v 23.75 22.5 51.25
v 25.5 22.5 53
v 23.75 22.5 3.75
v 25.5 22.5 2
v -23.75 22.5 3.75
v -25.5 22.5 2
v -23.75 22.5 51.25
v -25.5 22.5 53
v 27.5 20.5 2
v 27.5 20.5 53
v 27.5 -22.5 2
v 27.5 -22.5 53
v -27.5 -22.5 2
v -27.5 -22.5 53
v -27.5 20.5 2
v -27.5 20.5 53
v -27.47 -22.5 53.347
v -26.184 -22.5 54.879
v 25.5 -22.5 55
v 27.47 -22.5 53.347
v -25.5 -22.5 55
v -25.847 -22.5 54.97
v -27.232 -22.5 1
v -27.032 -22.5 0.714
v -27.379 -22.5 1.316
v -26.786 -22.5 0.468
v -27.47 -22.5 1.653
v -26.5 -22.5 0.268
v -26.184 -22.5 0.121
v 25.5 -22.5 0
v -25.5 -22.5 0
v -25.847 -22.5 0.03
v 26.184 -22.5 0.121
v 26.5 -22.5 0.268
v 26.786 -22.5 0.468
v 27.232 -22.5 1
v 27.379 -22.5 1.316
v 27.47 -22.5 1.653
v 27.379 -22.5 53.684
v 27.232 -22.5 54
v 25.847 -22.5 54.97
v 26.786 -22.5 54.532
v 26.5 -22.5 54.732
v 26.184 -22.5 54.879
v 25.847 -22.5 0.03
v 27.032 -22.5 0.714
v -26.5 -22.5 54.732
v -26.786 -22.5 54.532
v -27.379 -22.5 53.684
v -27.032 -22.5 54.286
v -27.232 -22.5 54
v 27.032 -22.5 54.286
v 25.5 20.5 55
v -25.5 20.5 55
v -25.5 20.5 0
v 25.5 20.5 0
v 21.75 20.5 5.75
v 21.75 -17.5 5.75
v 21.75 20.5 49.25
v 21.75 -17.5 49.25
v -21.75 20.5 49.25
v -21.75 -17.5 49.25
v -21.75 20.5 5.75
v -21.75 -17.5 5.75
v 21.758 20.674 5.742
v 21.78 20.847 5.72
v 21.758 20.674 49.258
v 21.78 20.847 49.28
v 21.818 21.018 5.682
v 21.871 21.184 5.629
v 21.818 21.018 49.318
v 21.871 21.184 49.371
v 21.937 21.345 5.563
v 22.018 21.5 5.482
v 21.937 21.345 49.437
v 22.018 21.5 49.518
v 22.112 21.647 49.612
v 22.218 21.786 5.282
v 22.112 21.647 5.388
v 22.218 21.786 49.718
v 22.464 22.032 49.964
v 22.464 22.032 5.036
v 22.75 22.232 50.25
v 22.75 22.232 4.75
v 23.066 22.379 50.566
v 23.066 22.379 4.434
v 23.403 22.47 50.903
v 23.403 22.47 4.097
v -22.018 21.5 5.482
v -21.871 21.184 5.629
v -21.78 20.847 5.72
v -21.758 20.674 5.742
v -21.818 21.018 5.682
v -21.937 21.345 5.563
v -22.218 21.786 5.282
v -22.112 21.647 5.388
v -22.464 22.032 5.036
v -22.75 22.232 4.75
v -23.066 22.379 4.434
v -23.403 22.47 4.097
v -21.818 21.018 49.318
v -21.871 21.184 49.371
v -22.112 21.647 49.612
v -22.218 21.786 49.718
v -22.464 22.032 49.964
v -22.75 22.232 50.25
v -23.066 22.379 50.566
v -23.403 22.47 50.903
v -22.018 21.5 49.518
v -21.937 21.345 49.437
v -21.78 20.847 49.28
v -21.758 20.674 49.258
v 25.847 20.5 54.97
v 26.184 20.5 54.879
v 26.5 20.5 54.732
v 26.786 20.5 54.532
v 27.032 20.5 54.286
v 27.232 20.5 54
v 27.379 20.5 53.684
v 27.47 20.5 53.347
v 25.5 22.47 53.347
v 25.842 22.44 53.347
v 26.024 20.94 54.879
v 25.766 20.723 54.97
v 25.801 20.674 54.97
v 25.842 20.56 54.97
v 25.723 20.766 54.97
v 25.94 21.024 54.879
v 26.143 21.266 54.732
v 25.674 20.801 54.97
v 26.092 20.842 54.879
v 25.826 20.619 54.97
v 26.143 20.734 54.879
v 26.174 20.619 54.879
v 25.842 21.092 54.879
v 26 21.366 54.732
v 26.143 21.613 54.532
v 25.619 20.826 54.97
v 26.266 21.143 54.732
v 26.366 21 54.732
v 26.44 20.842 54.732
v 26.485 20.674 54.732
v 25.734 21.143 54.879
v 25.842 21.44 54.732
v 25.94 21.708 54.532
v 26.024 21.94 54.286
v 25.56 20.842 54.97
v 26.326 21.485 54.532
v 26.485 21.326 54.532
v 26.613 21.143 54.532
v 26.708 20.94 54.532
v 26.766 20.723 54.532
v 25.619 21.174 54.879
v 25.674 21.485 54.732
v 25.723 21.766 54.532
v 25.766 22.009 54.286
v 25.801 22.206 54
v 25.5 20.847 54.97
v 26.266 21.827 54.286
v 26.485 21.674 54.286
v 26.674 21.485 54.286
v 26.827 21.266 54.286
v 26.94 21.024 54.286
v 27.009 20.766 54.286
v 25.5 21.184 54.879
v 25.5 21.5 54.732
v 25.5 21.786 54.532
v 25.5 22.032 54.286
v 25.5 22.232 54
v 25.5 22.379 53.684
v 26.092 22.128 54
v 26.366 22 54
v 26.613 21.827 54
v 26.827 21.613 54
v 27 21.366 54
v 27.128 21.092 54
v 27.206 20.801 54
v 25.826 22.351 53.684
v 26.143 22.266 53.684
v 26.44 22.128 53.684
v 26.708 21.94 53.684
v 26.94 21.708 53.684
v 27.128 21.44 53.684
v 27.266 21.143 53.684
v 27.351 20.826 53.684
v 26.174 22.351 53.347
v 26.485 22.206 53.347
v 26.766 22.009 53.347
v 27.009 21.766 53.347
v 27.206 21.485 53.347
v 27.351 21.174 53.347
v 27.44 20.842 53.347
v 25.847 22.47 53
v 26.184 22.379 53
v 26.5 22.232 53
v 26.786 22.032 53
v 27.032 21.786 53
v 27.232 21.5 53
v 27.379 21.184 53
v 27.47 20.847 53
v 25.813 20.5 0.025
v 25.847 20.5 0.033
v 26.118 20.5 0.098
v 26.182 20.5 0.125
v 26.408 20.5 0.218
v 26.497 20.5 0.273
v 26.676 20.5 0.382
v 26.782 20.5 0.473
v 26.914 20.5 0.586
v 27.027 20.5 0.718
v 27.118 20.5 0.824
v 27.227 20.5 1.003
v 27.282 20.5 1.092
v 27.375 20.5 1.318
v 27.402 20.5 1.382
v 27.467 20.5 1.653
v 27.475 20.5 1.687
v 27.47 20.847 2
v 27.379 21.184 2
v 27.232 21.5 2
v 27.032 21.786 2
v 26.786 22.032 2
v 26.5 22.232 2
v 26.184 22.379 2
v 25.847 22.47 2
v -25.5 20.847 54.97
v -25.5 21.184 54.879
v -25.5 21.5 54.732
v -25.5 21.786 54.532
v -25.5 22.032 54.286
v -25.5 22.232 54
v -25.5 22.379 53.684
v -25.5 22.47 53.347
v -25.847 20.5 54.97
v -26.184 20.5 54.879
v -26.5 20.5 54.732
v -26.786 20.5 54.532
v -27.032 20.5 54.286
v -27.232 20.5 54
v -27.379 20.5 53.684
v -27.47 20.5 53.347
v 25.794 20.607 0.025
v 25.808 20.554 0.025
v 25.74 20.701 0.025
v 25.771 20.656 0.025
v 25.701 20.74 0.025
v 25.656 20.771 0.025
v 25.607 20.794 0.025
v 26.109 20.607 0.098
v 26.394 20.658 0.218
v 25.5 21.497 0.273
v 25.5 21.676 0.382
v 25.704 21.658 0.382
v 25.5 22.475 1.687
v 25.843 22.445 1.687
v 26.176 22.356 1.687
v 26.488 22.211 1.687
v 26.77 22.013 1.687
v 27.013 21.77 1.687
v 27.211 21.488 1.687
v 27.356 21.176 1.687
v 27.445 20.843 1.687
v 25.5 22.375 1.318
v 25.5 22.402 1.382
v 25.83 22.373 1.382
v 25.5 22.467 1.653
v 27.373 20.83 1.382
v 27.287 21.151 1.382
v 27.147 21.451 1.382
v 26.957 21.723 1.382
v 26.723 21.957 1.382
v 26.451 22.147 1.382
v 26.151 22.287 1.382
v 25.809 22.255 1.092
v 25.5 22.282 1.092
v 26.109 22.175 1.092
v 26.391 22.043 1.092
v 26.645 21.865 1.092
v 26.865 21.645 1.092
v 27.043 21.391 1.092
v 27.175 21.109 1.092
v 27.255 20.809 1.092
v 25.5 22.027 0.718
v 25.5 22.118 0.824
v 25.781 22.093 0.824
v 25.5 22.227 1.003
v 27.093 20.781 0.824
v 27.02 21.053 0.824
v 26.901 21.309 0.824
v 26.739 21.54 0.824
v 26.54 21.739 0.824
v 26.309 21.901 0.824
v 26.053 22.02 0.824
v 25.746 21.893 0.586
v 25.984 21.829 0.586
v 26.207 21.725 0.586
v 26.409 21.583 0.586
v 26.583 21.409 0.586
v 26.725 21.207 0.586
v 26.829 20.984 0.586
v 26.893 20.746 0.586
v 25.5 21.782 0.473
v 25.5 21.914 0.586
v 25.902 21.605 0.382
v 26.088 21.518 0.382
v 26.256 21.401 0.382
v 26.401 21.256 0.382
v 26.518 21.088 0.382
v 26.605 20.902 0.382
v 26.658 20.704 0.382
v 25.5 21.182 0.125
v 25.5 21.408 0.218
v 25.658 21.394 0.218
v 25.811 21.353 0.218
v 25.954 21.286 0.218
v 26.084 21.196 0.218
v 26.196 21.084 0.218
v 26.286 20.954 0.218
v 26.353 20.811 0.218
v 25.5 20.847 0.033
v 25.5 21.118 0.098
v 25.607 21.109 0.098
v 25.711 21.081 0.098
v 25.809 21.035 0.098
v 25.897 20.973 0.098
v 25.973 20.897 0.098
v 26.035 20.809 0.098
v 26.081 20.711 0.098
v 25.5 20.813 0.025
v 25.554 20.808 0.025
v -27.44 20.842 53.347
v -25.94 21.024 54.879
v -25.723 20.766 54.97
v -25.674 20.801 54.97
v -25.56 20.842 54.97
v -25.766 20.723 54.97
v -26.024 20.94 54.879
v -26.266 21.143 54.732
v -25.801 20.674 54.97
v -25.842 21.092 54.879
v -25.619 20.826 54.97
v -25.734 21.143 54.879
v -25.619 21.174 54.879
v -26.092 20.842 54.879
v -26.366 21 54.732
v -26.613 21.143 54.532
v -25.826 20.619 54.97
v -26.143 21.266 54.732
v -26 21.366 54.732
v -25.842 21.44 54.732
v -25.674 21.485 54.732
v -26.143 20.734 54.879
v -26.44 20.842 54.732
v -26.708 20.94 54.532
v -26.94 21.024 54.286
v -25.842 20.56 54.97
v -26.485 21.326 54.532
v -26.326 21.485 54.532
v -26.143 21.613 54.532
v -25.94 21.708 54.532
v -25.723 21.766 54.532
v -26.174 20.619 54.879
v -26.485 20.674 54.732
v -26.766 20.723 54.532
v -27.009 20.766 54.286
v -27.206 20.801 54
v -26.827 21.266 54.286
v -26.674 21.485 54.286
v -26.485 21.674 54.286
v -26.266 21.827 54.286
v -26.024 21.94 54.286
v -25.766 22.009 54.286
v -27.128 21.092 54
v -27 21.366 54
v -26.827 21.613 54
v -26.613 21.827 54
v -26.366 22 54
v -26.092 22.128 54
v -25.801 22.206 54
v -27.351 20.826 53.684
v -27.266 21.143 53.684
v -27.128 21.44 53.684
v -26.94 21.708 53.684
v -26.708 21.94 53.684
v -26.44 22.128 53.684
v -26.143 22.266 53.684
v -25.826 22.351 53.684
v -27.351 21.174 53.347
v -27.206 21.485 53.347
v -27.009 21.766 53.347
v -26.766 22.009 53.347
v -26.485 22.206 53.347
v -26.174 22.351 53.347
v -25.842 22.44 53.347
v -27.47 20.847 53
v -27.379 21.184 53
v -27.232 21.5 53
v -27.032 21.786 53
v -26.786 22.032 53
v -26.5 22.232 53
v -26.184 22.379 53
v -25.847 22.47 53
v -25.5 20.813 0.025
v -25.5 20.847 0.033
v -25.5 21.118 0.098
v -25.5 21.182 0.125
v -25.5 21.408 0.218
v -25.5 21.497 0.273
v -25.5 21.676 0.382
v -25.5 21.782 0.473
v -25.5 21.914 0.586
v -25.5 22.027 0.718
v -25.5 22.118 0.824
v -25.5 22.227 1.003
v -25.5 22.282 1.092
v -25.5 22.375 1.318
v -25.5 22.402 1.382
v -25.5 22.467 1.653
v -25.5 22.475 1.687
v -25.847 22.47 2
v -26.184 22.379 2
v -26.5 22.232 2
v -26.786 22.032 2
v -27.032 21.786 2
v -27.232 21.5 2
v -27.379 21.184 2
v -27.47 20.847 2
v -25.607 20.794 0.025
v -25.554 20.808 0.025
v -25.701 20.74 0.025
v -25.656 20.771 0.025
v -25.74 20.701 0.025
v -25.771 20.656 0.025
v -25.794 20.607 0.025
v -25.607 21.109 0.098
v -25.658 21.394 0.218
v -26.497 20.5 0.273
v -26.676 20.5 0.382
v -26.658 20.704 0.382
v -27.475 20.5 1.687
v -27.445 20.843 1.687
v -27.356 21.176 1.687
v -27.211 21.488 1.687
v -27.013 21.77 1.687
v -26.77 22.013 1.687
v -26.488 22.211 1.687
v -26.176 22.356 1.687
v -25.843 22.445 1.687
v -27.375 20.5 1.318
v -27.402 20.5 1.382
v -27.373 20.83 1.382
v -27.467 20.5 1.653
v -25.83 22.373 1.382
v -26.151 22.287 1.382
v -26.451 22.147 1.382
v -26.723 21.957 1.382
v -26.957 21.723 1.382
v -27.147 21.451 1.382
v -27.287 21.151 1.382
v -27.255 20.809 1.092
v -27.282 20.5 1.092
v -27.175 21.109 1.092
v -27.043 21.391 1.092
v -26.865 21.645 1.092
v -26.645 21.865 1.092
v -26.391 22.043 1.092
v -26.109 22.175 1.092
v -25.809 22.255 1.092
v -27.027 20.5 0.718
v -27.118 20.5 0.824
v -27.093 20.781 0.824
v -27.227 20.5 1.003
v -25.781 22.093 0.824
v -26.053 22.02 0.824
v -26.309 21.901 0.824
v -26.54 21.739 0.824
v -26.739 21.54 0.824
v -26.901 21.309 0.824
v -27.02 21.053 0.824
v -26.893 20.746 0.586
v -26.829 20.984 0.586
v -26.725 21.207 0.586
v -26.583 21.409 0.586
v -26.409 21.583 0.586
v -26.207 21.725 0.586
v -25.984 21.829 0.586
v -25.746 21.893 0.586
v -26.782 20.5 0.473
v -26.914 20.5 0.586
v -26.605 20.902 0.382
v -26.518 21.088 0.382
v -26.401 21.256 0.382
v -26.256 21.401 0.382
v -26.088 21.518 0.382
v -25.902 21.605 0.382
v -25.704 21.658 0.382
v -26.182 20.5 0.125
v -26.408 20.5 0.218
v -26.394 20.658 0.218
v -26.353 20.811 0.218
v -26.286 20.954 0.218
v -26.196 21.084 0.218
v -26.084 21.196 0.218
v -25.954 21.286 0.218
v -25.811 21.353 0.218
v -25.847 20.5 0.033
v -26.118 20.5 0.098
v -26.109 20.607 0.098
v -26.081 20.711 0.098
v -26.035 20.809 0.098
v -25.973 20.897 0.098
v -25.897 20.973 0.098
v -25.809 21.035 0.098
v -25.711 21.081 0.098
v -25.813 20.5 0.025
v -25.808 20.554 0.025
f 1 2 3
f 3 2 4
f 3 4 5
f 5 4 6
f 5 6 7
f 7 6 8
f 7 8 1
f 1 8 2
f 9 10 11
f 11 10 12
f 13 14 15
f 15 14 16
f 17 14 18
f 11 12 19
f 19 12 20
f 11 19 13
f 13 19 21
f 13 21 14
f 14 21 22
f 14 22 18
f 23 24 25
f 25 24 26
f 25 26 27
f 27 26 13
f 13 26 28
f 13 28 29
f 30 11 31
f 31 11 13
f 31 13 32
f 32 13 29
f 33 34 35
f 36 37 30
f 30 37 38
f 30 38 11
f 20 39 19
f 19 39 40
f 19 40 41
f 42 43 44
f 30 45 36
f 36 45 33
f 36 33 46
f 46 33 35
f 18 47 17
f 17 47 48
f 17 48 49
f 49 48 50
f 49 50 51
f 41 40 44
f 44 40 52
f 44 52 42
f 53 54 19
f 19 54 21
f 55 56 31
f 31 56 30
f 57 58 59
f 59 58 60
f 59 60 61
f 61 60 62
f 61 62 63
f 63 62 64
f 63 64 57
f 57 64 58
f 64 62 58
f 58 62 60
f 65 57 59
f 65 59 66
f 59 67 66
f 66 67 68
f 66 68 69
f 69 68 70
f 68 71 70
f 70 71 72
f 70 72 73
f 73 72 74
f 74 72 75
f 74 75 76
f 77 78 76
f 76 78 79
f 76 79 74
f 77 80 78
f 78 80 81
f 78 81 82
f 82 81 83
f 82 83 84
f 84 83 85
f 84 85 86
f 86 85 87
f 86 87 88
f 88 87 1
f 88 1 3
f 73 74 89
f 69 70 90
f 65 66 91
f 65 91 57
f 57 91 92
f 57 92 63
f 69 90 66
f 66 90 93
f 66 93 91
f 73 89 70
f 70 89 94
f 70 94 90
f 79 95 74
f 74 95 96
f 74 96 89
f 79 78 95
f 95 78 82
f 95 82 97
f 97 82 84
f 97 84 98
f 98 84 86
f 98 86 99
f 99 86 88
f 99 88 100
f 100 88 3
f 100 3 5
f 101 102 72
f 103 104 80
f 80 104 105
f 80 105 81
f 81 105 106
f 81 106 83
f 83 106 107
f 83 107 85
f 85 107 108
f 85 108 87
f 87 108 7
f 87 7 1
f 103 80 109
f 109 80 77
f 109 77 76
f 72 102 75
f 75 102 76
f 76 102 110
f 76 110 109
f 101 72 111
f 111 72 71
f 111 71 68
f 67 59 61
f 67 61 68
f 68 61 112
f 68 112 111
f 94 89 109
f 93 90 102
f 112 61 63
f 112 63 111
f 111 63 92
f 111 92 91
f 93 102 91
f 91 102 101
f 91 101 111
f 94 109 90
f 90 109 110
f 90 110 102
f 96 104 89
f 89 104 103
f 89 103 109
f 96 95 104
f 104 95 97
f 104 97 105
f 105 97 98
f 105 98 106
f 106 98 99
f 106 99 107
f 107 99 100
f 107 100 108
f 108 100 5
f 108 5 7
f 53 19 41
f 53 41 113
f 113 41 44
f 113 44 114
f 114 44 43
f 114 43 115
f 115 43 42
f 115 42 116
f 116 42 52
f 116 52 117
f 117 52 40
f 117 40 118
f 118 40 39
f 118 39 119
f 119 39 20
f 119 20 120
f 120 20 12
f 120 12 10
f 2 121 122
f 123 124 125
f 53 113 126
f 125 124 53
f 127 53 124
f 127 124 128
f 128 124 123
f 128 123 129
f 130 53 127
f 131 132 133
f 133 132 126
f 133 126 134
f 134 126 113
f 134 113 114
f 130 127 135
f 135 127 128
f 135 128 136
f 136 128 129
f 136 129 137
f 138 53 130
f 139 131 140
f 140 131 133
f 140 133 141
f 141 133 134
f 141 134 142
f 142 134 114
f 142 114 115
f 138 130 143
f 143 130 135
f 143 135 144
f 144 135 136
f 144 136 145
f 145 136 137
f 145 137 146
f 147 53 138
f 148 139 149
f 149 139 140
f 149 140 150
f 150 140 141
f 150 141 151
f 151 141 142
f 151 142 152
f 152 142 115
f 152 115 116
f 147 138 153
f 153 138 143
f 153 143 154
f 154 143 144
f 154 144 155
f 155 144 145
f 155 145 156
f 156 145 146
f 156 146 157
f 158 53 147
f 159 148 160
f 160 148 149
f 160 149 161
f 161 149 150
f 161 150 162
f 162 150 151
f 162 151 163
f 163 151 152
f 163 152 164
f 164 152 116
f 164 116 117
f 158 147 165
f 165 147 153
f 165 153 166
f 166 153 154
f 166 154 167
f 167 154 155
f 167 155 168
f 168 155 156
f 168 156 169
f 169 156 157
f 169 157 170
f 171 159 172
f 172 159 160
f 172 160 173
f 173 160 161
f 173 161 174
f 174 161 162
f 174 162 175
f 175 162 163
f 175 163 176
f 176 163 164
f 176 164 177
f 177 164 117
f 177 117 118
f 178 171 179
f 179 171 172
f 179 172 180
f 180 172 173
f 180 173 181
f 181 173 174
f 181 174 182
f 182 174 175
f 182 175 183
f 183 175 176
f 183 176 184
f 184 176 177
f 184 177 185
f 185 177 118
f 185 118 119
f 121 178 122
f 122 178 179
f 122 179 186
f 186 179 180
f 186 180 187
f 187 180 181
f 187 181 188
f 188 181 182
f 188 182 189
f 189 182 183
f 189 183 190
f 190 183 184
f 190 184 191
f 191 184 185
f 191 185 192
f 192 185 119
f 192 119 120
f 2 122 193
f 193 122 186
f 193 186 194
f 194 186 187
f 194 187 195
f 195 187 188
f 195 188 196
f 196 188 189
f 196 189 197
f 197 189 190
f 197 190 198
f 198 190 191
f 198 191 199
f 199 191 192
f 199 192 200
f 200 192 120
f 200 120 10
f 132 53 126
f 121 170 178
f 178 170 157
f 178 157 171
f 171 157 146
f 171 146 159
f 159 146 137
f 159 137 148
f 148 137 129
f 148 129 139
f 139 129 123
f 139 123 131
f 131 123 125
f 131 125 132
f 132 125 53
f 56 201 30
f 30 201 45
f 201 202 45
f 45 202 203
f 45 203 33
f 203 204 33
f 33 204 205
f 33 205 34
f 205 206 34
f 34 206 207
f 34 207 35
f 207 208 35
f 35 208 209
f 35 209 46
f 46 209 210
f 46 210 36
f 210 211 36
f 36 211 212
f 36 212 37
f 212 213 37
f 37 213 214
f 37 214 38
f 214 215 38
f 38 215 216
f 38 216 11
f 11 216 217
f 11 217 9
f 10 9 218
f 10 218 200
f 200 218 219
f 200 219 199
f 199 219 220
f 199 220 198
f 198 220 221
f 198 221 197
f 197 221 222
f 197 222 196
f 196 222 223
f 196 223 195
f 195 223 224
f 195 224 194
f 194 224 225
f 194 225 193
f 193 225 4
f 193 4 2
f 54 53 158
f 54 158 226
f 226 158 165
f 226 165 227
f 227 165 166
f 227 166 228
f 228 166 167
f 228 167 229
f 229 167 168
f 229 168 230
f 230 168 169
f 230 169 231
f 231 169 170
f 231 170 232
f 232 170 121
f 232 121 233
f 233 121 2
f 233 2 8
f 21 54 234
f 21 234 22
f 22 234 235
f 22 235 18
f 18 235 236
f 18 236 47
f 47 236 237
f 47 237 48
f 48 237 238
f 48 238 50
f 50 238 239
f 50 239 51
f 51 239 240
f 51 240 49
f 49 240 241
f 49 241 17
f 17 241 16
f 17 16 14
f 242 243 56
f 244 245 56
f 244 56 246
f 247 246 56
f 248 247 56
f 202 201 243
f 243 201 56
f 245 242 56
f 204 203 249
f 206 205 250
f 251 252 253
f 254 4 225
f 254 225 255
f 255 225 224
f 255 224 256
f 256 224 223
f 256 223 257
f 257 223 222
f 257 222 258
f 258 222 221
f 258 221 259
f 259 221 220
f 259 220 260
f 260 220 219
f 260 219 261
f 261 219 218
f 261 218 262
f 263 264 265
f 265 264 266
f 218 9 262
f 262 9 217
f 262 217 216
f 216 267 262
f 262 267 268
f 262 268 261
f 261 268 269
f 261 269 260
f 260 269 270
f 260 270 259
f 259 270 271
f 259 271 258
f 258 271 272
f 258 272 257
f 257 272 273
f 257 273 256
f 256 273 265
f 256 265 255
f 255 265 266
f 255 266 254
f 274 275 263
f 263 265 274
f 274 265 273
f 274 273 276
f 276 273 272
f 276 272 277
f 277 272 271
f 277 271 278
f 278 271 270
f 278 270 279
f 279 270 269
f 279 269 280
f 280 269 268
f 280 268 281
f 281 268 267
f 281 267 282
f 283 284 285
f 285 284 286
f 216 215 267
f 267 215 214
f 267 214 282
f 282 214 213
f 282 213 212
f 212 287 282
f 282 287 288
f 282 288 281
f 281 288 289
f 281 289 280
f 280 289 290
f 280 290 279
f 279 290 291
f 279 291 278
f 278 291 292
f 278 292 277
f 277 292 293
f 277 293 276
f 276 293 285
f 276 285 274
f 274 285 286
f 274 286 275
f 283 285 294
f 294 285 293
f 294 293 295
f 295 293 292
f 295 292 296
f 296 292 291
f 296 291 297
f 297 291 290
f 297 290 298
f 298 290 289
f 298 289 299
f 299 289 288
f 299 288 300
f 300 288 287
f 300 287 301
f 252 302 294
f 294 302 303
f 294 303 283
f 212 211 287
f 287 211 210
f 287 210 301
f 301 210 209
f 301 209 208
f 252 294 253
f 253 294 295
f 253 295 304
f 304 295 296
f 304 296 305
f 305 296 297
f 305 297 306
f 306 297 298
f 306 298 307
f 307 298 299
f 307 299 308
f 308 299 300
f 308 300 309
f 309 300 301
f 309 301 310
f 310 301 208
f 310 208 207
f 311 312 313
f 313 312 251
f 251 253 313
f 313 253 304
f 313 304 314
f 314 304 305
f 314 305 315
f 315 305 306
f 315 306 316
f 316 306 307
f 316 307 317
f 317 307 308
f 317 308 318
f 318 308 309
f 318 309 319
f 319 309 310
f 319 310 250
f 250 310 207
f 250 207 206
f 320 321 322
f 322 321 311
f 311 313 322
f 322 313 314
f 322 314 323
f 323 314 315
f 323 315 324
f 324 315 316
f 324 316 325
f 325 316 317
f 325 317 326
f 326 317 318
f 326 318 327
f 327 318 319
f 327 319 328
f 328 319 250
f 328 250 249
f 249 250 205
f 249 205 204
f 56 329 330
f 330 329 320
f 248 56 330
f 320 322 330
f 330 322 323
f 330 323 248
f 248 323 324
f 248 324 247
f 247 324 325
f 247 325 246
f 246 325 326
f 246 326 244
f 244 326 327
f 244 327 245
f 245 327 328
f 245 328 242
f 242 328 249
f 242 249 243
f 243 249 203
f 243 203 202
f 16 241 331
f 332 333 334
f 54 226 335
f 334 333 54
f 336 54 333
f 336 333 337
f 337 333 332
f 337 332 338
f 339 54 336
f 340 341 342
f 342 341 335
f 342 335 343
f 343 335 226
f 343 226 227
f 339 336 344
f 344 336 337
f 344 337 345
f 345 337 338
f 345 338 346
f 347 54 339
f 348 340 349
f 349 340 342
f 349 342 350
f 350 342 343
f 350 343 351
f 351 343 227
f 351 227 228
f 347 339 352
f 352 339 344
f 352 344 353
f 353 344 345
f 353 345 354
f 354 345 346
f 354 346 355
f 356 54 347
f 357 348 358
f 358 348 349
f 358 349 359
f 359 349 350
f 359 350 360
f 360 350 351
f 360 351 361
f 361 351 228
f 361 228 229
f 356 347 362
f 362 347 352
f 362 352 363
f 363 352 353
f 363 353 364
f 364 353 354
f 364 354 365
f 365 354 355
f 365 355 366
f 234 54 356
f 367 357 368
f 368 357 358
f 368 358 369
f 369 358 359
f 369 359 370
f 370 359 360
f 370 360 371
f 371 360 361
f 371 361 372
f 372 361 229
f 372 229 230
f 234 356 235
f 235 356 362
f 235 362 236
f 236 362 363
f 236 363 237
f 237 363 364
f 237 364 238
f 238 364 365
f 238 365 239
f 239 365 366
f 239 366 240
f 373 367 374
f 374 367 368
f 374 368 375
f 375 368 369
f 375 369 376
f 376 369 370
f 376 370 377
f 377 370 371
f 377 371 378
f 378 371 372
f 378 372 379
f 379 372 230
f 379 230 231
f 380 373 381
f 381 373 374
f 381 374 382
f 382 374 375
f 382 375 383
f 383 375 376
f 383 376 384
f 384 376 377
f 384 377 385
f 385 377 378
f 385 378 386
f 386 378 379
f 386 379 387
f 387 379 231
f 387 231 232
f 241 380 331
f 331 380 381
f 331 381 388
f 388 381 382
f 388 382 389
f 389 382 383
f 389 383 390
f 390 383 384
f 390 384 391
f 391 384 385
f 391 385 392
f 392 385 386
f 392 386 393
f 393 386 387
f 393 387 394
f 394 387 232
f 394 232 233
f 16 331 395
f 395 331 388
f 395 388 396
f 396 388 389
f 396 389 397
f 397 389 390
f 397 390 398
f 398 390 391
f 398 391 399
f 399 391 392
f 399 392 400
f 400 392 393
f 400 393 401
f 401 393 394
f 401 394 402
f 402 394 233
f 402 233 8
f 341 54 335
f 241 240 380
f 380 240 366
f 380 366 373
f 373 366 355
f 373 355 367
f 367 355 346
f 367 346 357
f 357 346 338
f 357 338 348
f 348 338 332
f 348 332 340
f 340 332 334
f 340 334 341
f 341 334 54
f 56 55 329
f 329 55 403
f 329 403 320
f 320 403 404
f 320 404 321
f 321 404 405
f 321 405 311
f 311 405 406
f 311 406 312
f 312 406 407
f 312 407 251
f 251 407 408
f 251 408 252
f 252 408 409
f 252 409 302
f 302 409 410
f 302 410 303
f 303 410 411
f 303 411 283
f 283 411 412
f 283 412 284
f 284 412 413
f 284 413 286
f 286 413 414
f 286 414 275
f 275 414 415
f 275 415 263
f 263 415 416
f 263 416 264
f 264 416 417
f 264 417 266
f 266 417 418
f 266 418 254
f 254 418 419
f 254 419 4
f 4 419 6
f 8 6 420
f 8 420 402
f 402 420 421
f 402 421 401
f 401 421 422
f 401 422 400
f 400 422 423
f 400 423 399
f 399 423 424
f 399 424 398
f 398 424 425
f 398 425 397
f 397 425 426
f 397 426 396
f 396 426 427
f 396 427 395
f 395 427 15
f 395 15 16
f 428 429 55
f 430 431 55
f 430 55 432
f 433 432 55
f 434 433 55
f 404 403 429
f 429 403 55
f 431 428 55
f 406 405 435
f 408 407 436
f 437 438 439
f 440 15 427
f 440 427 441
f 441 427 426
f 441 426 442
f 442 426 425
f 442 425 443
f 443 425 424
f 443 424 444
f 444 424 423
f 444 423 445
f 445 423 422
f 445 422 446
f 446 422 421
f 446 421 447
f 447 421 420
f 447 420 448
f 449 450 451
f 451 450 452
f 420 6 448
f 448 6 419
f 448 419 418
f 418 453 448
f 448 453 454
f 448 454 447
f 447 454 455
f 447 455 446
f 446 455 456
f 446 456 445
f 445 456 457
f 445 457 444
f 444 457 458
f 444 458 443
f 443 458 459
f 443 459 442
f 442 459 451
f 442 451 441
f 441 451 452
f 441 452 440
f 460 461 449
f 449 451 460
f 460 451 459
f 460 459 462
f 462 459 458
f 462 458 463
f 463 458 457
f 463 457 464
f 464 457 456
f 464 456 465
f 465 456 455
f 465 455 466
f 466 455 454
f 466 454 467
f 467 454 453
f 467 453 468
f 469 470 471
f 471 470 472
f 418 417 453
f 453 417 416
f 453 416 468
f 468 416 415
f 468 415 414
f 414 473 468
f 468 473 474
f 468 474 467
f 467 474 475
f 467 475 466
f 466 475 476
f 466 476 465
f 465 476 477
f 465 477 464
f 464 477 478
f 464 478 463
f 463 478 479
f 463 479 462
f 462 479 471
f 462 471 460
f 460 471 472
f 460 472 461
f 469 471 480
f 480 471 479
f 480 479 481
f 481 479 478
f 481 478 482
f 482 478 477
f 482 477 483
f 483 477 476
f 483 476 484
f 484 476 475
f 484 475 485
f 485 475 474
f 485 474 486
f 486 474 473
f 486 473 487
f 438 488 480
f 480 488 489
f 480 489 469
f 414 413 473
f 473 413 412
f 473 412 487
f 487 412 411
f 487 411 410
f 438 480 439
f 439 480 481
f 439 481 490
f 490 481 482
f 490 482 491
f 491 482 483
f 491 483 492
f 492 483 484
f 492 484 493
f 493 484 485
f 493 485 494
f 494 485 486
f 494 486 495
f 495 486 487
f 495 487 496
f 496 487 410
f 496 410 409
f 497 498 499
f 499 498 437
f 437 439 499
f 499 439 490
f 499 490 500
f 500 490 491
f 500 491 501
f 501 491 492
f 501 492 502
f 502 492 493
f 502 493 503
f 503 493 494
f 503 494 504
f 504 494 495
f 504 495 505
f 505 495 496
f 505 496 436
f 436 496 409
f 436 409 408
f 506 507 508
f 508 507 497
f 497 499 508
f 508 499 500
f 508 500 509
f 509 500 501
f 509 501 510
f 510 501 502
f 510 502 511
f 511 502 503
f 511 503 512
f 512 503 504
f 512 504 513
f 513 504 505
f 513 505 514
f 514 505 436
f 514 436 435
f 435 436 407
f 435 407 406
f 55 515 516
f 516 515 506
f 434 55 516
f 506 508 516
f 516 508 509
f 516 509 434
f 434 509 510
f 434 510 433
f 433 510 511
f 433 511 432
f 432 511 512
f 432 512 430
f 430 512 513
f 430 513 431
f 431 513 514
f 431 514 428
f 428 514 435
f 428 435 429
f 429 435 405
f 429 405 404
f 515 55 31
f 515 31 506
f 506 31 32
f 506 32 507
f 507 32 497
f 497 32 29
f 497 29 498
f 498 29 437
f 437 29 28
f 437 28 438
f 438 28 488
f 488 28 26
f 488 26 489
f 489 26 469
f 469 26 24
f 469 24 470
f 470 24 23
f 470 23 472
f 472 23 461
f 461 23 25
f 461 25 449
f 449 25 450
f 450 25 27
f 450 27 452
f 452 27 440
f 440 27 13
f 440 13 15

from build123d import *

# Parameters (mm, degrees)
SKETCH1_W           = 55
SKETCH1_H           = 45
BOSS_EXTRUDE1_DEPTH = 55
SKETCH2_W           = 43.5
SKETCH2_H           = 43.5
CUT_EXTRUDE1_DEPTH  = 40
FILLET2_R           = 2


with BuildPart() as part:
    # Sketch1 → Boss-Extrude1 (new body)
    with BuildSketch(Plane.XY):
        Rectangle(SKETCH1_W, SKETCH1_H)
    extrude(amount=BOSS_EXTRUDE1_DEPTH)

    # Sketch2 → Cut-Extrude1 (cut)
    with BuildSketch(Plane(origin=(0, 22.5, 0), x_dir=(1, 0, 0), z_dir=(0, 1, 0))):
        with Locations((0, -27.5)):
            Rectangle(SKETCH2_W, SKETCH2_H)
    extrude(amount=-CUT_EXTRUDE1_DEPTH, mode=Mode.SUBTRACT)

    # Fillet2
    fillet2_edges = [part.edges().sort_by_distance(p)[0] for p in [
        (-27.5, 0, 55),
        (21.75, 22.5, 27.5),
        (0, 22.5, 5.75),
        (-21.75, 22.5, 27.5),
        (0, 22.5, 49.25),
        (27.5, 0, 55),
        (-27.5, 0, 0),
        (0, 22.5, 0),
        (27.5, 0, 0),
        (0, 22.5, 55),
        (-27.5, 22.5, 27.5),
        (27.5, 22.5, 27.5),
    ]]
    fillet(fillet2_edges, radius=FILLET2_R)


solid = part.part
